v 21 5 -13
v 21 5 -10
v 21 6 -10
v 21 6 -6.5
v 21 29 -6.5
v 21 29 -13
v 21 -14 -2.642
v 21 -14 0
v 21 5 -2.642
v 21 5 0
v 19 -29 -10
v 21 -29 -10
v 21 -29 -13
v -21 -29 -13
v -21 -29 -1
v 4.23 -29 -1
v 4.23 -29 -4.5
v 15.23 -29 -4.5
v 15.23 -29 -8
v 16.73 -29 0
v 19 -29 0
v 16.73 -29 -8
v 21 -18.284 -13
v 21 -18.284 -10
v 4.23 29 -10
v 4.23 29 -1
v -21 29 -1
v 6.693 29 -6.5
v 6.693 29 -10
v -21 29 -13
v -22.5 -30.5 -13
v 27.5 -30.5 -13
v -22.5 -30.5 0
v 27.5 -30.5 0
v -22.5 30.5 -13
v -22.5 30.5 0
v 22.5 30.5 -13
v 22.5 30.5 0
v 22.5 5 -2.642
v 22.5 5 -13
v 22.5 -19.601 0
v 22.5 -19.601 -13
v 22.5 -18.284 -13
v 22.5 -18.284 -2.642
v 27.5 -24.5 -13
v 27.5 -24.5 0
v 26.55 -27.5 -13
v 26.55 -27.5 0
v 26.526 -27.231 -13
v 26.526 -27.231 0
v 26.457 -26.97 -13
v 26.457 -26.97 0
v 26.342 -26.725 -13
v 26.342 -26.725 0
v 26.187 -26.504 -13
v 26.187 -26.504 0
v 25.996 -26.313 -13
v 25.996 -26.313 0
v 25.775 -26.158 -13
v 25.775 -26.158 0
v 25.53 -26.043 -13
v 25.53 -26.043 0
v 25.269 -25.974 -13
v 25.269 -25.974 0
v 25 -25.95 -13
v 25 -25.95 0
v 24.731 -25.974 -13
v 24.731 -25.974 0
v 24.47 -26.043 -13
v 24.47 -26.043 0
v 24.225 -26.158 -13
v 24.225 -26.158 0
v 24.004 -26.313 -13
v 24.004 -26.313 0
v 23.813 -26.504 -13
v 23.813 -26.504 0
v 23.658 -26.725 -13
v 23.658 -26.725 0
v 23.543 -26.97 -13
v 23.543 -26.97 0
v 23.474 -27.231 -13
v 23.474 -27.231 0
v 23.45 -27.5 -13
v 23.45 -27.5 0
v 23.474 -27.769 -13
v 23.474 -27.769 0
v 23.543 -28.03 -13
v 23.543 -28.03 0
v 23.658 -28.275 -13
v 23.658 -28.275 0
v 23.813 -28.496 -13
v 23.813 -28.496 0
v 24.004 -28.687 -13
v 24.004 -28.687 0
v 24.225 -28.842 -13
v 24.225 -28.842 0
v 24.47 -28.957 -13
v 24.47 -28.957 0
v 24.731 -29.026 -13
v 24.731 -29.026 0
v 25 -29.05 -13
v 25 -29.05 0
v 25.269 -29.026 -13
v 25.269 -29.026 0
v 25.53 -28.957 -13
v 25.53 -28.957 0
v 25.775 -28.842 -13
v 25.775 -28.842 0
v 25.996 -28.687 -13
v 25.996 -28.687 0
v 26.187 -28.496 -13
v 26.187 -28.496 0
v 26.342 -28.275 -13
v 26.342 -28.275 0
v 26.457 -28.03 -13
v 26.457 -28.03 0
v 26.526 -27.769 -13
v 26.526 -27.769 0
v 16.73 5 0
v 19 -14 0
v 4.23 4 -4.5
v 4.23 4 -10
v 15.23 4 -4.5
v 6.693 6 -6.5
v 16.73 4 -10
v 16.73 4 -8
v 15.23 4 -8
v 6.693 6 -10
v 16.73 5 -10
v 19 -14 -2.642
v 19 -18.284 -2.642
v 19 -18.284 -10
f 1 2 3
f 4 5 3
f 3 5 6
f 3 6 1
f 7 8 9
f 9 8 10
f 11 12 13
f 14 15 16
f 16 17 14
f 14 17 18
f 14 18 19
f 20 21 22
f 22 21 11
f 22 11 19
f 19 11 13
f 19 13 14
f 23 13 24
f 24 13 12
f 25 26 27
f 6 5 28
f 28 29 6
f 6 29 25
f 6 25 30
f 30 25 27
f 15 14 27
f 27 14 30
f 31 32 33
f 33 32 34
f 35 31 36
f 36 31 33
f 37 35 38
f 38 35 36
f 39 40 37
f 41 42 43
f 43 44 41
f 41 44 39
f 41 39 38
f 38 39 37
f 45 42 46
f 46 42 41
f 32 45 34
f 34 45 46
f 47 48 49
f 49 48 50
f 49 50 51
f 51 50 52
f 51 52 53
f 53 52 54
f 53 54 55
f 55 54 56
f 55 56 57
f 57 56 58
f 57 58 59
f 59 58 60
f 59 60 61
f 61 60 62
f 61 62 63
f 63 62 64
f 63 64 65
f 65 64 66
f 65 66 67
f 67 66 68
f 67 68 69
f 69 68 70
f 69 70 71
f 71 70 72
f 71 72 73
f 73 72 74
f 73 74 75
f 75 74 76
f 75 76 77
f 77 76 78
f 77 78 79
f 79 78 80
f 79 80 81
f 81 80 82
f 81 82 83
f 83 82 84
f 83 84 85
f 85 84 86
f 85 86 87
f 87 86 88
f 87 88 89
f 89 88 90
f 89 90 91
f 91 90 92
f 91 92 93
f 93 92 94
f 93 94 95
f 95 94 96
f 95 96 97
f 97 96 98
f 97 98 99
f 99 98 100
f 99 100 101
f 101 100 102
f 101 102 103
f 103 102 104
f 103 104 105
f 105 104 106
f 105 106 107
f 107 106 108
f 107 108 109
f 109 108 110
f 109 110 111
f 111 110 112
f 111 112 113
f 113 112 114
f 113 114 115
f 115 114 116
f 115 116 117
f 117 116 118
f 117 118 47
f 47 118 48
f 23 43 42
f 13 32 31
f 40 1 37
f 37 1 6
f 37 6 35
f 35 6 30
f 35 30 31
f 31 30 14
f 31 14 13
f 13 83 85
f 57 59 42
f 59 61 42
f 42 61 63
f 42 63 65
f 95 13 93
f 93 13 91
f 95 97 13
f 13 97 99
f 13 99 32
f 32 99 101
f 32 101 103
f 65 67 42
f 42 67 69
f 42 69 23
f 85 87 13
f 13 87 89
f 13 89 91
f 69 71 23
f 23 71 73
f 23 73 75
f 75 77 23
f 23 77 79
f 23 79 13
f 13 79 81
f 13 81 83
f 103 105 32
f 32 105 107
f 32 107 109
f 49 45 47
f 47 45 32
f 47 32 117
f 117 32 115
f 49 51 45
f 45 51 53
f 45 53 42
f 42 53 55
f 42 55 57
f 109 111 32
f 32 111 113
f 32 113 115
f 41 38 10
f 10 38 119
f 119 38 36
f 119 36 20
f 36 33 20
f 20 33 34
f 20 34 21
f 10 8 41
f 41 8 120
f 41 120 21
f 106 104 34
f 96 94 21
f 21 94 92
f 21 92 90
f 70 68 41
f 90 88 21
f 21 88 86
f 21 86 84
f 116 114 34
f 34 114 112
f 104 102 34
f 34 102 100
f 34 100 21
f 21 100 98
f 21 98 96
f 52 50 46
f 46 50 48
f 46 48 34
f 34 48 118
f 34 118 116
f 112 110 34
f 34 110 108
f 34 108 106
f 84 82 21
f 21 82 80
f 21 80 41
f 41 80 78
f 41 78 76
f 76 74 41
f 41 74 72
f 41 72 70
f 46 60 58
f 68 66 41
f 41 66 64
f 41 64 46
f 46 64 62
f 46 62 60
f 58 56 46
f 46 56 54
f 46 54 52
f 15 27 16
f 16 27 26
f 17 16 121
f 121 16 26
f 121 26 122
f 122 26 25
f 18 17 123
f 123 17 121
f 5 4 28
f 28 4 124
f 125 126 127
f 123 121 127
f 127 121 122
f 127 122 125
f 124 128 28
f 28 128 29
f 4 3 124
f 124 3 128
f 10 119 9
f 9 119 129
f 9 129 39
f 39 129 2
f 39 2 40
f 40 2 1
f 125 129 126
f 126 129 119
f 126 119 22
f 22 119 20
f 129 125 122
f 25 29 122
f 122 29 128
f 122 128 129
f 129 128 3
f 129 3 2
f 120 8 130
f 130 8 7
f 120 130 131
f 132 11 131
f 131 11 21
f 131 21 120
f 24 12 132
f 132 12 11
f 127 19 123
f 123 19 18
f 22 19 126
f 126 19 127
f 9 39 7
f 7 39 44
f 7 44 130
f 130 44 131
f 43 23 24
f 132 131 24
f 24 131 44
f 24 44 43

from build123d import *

# Parameters (mm, degrees)
SKETCH_1_W          = 42
SKETCH_1_H          = 58
SKETCH_1_R          = 1.55
EXTRUDE_1_DEPTH     = 13
EXTRUDE_2_DEPTH     = 1
SKETCH_1_4_W        = 11
SKETCH_1_4_H        = 33
EXTRUDE_3_DEPTH     = 4.5
SKETCH_1_5_W        = 14.30710185
SKETCH_1_5_H        = 23
EXTRUDE_4_DEPTH     = 6.5
SKETCH_1_6_W        = 2
SKETCH_1_6_H        = 15
EXTRUDE_5_DEPTH     = 10
SKETCH_1_8_W        = 1.5
SKETCH_1_8_H        = 33
EXTRUDE_6_DEPTH     = 8
SKETCH_2_W          = 10.357609848
SKETCH_2_H          = 23.284426604
CUT_EXTRUDE_1_DEPTH = 2.5


with BuildPart() as part:
    # 草图1 → 凸台-拉伸1 (new body)
    with BuildSketch(Plane.XY):
        Polygon((22.5, -19.601020514), (22.5, 30.5), (-22.5, 30.5), (-22.5, -30.5), (27.5, -30.5), (27.5, -24.5), align=None)
        Rectangle(SKETCH_1_W, SKETCH_1_H, mode=Mode.SUBTRACT)
        with Locations((25, -27.5)):
            Circle(SKETCH_1_R, mode=Mode.SUBTRACT)
    extrude(amount=-EXTRUDE_1_DEPTH)

    # 草图1<3> → 凸台-拉伸2 (add)
    with BuildSketch(Plane.XY):
        Polygon((-21, -29), (4.230409418, -29), (4.230409418, 4), (4.230409418, 29), (-21, 29), align=None)
    extrude(amount=-EXTRUDE_2_DEPTH)

    # 草图1<4> → 凸台-拉伸3 (add)
    with BuildSketch(Plane.XY):
        with Locations((9.730409418, -12.5)):
            Rectangle(SKETCH_1_4_W, SKETCH_1_4_H)
    extrude(amount=-EXTRUDE_3_DEPTH)

    # 草图1<5> → 凸台-拉伸4 (add)
    with BuildSketch(Plane.XY):
        with Locations((13.846449075, 17.5)):
            Rectangle(SKETCH_1_5_W, SKETCH_1_5_H)
    extrude(amount=-EXTRUDE_4_DEPTH)

    # 草图1<6> → 凸台-拉伸5 (add)
    with BuildSketch(Plane.XY):
        with Locations((20, -21.5)):
            Rectangle(SKETCH_1_6_W, SKETCH_1_6_H)
        Polygon((16.730409418, 5), (21, 5), (21, 6), (6.69289815, 6), (6.69289815, 29), (4.230409418, 29), (4.230409418, 4), (16.730409418, 4), align=None)
    extrude(amount=-EXTRUDE_5_DEPTH)

    # 草图1<8> → 凸台-拉伸6 (add)
    with BuildSketch(Plane.XY):
        with Locations((15.980409418, -12.5)):
            Rectangle(SKETCH_1_8_W, SKETCH_1_8_H)
    extrude(amount=-EXTRUDE_6_DEPTH)

    # 草图2 → 切除-拉伸1 (cut, symmetric)
    with BuildSketch(Plane.ZY.offset(-21)):
        with Locations((-7.821195076, -6.642213302)):
            Rectangle(SKETCH_2_W, SKETCH_2_H)
    extrude(amount=CUT_EXTRUDE_1_DEPTH, both=True, mode=Mode.SUBTRACT)


solid = part.part
